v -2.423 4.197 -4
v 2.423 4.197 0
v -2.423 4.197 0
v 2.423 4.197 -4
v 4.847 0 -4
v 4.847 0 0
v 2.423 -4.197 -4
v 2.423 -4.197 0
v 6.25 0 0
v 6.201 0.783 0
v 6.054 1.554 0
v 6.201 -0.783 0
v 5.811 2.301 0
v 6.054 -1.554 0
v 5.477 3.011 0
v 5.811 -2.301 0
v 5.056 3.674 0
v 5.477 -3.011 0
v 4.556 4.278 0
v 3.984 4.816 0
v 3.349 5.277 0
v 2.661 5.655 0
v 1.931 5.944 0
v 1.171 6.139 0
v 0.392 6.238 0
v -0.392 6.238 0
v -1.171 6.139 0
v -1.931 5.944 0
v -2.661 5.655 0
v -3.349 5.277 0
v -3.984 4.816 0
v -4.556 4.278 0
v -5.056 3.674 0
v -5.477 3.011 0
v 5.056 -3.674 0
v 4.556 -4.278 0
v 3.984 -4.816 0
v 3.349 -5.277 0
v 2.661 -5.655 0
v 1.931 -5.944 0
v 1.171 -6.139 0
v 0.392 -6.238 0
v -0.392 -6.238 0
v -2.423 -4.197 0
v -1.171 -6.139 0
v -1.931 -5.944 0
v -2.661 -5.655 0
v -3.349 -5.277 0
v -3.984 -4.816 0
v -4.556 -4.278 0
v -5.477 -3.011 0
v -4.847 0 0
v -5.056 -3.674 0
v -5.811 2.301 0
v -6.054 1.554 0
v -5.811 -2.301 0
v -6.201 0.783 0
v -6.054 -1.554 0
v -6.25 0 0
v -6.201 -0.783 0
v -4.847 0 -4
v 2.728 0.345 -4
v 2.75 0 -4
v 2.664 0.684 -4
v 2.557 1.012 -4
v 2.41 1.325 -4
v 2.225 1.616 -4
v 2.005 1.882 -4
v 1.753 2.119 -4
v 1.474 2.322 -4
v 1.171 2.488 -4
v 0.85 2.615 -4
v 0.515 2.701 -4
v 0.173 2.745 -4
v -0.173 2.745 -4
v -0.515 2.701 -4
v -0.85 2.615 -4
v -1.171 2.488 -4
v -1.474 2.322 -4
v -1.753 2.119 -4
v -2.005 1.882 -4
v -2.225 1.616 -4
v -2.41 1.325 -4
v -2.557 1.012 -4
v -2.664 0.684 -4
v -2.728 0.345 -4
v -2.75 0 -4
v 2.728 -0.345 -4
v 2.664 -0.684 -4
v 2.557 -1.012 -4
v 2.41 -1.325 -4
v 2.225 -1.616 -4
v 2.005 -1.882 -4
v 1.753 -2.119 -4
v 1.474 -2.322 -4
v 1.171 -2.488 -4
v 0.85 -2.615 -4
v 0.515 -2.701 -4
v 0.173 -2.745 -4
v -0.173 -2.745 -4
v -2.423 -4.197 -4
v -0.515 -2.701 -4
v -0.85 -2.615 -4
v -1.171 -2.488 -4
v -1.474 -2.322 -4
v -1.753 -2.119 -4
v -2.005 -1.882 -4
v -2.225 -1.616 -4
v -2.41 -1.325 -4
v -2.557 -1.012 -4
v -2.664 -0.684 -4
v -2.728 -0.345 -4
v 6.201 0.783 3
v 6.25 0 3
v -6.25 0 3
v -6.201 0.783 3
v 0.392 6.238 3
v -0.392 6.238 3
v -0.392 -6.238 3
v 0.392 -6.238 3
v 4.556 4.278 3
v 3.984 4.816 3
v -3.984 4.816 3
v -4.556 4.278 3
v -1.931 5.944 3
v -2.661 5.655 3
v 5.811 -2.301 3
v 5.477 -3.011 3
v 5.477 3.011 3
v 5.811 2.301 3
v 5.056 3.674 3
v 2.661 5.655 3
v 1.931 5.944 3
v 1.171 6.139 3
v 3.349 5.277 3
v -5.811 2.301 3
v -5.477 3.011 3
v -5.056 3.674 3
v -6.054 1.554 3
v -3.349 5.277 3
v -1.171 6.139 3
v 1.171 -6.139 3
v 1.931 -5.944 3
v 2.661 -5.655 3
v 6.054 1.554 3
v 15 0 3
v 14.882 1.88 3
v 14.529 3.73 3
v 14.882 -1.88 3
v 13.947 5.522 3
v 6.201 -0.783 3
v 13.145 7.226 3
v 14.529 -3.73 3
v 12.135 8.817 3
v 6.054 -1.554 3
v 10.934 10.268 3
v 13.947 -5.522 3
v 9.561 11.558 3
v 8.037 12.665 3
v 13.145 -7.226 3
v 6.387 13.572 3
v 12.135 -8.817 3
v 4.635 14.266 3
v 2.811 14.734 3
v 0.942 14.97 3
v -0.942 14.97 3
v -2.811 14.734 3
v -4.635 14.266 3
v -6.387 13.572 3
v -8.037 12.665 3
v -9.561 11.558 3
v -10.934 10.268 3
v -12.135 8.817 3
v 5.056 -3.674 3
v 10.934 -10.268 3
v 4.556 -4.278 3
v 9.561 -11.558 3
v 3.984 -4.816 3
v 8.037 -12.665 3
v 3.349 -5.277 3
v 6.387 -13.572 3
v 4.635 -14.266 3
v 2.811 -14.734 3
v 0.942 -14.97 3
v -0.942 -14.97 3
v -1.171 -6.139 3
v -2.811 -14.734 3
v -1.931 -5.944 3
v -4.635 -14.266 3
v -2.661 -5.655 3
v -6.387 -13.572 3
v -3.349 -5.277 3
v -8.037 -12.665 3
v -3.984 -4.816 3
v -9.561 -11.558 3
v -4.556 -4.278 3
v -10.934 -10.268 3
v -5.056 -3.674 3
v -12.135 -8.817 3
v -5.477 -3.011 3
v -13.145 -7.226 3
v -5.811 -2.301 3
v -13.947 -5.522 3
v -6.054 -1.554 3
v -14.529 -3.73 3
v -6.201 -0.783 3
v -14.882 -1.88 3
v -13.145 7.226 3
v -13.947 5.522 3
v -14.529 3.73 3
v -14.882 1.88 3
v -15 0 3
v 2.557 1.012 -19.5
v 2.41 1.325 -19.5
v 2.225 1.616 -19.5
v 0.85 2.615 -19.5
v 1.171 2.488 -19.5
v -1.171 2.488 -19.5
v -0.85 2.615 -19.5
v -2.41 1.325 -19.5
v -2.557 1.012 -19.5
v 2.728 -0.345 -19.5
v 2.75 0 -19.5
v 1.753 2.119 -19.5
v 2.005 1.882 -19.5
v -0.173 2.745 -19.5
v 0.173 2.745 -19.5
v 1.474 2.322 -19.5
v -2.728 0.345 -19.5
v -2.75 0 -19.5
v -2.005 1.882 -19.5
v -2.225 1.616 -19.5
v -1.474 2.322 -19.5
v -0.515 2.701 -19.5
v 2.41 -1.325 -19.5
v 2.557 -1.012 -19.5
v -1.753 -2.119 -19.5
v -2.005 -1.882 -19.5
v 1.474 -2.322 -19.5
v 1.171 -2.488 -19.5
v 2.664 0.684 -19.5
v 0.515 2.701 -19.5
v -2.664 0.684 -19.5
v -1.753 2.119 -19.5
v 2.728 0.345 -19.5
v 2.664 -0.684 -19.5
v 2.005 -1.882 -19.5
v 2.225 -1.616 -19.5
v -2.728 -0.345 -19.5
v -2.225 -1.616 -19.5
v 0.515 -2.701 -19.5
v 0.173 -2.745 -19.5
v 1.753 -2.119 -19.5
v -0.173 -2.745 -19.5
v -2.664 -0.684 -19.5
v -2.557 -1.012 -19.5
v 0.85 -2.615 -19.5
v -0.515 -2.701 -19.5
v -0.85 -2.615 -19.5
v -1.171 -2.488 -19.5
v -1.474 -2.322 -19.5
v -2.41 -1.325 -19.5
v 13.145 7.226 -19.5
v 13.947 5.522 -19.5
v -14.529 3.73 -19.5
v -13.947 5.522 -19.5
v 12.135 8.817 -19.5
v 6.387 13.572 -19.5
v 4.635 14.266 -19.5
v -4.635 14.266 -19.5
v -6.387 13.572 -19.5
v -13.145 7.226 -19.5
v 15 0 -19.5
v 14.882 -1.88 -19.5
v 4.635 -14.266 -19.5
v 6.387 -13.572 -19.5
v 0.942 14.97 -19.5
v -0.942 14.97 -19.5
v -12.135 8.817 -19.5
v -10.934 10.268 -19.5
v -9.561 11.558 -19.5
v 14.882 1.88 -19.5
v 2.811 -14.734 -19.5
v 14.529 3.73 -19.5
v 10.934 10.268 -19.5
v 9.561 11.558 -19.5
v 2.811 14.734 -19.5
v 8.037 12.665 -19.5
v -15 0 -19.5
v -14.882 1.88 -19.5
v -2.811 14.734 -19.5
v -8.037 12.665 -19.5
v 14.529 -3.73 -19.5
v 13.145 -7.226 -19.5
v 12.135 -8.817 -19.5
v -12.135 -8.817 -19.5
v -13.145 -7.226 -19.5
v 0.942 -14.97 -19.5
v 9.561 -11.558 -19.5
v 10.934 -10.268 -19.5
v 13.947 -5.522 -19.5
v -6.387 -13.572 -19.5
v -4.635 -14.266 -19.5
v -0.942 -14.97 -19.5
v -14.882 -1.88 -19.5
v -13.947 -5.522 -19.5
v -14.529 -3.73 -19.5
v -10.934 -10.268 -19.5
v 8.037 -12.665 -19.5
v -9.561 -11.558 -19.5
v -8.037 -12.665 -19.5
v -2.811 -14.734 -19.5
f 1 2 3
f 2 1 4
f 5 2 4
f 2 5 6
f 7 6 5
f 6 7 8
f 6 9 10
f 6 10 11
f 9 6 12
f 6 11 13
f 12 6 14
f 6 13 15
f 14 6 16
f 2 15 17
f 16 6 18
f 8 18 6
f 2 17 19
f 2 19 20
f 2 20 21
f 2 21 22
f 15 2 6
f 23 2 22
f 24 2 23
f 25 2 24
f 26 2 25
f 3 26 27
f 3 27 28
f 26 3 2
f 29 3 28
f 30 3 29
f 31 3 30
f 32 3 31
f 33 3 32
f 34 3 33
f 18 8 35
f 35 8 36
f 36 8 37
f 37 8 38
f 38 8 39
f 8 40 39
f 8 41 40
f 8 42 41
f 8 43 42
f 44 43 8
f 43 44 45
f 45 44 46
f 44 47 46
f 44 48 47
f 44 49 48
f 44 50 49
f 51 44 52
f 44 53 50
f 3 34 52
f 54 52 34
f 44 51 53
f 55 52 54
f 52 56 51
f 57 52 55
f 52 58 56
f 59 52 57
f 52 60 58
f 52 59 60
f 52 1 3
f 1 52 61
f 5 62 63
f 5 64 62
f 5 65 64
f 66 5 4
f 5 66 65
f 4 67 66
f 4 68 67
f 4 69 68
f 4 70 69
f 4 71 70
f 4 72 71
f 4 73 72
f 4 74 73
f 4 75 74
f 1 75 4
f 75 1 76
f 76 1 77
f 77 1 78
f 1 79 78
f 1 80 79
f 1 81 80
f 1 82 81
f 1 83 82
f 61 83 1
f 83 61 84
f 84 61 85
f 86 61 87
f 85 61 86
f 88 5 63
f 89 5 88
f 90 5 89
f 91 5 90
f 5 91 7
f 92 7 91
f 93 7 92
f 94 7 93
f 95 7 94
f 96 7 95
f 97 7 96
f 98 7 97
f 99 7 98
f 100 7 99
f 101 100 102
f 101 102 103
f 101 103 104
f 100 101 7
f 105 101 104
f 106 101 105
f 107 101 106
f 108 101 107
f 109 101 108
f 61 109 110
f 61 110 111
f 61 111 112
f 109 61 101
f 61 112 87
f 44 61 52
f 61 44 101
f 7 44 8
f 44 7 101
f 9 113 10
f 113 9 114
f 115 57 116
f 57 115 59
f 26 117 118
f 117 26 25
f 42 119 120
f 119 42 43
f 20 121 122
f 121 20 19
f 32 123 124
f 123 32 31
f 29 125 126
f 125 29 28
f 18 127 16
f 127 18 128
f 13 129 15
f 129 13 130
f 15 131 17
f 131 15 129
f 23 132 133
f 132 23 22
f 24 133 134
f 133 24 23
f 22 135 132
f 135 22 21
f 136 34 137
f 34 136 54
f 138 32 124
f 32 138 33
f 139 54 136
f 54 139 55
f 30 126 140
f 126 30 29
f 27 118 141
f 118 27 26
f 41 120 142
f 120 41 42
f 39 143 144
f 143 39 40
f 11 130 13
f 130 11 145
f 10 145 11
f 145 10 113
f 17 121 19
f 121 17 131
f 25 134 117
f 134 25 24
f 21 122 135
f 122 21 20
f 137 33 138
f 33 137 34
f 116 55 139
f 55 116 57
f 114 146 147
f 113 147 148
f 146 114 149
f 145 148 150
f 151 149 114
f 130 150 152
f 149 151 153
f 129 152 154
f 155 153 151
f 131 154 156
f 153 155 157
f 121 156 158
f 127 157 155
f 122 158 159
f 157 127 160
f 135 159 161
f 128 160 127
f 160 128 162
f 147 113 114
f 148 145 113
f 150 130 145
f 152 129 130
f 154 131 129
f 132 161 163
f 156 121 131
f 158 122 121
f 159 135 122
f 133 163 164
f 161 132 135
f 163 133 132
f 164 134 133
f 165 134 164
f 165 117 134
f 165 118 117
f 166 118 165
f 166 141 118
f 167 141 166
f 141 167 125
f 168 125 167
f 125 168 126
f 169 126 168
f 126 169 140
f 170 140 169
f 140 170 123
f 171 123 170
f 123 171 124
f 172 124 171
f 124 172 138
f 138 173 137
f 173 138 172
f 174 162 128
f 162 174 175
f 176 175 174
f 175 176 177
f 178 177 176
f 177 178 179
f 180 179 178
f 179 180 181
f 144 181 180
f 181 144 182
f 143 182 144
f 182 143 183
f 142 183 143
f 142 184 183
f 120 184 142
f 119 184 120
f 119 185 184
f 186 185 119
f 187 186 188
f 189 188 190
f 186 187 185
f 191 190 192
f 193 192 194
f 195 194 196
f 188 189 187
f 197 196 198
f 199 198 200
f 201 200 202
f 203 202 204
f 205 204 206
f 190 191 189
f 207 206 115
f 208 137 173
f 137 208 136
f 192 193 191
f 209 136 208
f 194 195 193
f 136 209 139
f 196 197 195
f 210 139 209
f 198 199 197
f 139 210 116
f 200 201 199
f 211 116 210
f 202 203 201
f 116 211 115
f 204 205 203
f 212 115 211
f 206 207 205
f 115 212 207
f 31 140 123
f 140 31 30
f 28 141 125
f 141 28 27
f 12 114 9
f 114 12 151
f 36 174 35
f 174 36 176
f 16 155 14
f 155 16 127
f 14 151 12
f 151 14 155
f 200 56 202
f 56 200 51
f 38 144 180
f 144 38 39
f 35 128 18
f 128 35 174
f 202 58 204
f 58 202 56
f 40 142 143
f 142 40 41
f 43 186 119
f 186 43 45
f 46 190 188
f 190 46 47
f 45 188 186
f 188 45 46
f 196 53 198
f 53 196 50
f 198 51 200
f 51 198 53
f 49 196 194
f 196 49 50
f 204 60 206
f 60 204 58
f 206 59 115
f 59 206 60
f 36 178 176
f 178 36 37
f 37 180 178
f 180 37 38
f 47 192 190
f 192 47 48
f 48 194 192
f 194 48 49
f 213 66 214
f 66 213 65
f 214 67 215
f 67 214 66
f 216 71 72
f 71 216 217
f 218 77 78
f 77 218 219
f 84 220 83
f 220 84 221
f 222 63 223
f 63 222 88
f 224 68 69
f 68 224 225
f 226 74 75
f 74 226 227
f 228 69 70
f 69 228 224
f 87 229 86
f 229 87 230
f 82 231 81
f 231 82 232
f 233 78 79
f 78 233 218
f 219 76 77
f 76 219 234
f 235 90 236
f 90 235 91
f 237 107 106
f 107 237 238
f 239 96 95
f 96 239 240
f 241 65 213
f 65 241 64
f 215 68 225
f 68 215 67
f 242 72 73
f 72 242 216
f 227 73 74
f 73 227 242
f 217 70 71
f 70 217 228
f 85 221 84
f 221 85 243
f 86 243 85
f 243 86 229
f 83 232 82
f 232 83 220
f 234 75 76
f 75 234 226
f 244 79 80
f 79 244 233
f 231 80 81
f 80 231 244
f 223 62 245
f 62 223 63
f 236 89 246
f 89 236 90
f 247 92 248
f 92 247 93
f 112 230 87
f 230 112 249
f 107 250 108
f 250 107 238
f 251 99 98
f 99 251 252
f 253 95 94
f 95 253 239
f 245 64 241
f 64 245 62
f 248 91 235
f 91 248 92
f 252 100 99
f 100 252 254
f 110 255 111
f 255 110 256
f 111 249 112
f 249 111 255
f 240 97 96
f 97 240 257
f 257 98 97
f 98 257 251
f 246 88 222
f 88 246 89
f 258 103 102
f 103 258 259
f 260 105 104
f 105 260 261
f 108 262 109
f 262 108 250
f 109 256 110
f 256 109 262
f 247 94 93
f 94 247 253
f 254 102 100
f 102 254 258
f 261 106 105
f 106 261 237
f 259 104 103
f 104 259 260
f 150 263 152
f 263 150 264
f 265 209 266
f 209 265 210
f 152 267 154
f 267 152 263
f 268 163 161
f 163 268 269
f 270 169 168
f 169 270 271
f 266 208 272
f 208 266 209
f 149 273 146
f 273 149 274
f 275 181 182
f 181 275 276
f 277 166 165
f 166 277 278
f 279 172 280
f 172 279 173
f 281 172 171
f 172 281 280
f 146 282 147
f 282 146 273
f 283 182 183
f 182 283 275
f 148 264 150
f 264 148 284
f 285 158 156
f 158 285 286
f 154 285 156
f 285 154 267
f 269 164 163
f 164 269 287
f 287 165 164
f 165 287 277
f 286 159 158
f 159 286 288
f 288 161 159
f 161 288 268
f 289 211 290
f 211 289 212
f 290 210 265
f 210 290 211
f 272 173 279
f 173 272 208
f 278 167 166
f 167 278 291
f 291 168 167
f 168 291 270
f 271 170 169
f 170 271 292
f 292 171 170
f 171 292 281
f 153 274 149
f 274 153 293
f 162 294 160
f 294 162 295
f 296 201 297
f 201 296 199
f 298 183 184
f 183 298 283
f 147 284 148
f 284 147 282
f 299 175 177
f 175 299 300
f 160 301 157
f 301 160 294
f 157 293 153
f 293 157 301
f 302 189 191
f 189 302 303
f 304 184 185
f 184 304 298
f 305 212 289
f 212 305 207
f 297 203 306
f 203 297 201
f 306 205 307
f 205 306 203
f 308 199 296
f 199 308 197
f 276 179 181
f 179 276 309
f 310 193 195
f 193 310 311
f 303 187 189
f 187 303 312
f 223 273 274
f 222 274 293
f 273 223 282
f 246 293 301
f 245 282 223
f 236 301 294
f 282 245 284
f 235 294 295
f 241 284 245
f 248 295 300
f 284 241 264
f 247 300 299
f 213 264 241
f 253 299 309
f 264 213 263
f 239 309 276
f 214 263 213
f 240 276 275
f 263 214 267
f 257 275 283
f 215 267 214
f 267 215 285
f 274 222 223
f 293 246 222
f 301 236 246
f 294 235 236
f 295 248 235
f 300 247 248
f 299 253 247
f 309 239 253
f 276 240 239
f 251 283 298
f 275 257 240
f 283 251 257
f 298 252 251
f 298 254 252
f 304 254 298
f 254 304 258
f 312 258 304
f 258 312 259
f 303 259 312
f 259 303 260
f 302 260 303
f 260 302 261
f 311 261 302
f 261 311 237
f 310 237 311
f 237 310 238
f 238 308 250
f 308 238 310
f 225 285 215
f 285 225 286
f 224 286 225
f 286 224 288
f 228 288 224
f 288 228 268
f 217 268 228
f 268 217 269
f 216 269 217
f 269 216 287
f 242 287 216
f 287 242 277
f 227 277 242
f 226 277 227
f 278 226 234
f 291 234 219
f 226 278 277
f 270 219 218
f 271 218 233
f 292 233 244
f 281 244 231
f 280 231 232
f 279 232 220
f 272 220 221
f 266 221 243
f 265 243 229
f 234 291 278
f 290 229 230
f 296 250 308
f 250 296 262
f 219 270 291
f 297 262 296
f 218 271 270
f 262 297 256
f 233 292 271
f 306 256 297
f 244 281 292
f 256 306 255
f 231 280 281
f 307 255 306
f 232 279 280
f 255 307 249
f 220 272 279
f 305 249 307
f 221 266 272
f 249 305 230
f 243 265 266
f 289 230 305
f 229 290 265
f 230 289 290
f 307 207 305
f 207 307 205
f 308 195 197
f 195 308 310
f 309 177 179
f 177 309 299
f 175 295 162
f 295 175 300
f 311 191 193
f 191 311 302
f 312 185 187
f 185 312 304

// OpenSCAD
$fn = 50;

difference() {
	union() {
		translate(v = [0, 0, -19.5]) {
			cylinder(h = 22.5, r = 15.0);
		}
	}
	union() {
		translate(v = [0, 0, 0]) {
			rotate(a = [0, 0, 0]) {
				difference() {
					union() {
						translate(v = [0, 0, -4]) {
							linear_extrude(height = 4) {
								polygon(points = [[4.8468, 0.0], [2.4234000000000004, 4.197451927062417], [-2.423399999999999, 4.197451927062417], [-4.8468, 5.935618106107392e-16], [-2.423400000000002, -4.197451927062416], [2.423399999999997, -4.197451927062419]]);
							}
						}
					}
					union();
				}
			}
		}
		#cylinder(h = 3, r = 6.25);
		#translate(v = [0, 0, -100.0]) {
			cylinder(h = 200, r = 2.75);
		}
	}
}
